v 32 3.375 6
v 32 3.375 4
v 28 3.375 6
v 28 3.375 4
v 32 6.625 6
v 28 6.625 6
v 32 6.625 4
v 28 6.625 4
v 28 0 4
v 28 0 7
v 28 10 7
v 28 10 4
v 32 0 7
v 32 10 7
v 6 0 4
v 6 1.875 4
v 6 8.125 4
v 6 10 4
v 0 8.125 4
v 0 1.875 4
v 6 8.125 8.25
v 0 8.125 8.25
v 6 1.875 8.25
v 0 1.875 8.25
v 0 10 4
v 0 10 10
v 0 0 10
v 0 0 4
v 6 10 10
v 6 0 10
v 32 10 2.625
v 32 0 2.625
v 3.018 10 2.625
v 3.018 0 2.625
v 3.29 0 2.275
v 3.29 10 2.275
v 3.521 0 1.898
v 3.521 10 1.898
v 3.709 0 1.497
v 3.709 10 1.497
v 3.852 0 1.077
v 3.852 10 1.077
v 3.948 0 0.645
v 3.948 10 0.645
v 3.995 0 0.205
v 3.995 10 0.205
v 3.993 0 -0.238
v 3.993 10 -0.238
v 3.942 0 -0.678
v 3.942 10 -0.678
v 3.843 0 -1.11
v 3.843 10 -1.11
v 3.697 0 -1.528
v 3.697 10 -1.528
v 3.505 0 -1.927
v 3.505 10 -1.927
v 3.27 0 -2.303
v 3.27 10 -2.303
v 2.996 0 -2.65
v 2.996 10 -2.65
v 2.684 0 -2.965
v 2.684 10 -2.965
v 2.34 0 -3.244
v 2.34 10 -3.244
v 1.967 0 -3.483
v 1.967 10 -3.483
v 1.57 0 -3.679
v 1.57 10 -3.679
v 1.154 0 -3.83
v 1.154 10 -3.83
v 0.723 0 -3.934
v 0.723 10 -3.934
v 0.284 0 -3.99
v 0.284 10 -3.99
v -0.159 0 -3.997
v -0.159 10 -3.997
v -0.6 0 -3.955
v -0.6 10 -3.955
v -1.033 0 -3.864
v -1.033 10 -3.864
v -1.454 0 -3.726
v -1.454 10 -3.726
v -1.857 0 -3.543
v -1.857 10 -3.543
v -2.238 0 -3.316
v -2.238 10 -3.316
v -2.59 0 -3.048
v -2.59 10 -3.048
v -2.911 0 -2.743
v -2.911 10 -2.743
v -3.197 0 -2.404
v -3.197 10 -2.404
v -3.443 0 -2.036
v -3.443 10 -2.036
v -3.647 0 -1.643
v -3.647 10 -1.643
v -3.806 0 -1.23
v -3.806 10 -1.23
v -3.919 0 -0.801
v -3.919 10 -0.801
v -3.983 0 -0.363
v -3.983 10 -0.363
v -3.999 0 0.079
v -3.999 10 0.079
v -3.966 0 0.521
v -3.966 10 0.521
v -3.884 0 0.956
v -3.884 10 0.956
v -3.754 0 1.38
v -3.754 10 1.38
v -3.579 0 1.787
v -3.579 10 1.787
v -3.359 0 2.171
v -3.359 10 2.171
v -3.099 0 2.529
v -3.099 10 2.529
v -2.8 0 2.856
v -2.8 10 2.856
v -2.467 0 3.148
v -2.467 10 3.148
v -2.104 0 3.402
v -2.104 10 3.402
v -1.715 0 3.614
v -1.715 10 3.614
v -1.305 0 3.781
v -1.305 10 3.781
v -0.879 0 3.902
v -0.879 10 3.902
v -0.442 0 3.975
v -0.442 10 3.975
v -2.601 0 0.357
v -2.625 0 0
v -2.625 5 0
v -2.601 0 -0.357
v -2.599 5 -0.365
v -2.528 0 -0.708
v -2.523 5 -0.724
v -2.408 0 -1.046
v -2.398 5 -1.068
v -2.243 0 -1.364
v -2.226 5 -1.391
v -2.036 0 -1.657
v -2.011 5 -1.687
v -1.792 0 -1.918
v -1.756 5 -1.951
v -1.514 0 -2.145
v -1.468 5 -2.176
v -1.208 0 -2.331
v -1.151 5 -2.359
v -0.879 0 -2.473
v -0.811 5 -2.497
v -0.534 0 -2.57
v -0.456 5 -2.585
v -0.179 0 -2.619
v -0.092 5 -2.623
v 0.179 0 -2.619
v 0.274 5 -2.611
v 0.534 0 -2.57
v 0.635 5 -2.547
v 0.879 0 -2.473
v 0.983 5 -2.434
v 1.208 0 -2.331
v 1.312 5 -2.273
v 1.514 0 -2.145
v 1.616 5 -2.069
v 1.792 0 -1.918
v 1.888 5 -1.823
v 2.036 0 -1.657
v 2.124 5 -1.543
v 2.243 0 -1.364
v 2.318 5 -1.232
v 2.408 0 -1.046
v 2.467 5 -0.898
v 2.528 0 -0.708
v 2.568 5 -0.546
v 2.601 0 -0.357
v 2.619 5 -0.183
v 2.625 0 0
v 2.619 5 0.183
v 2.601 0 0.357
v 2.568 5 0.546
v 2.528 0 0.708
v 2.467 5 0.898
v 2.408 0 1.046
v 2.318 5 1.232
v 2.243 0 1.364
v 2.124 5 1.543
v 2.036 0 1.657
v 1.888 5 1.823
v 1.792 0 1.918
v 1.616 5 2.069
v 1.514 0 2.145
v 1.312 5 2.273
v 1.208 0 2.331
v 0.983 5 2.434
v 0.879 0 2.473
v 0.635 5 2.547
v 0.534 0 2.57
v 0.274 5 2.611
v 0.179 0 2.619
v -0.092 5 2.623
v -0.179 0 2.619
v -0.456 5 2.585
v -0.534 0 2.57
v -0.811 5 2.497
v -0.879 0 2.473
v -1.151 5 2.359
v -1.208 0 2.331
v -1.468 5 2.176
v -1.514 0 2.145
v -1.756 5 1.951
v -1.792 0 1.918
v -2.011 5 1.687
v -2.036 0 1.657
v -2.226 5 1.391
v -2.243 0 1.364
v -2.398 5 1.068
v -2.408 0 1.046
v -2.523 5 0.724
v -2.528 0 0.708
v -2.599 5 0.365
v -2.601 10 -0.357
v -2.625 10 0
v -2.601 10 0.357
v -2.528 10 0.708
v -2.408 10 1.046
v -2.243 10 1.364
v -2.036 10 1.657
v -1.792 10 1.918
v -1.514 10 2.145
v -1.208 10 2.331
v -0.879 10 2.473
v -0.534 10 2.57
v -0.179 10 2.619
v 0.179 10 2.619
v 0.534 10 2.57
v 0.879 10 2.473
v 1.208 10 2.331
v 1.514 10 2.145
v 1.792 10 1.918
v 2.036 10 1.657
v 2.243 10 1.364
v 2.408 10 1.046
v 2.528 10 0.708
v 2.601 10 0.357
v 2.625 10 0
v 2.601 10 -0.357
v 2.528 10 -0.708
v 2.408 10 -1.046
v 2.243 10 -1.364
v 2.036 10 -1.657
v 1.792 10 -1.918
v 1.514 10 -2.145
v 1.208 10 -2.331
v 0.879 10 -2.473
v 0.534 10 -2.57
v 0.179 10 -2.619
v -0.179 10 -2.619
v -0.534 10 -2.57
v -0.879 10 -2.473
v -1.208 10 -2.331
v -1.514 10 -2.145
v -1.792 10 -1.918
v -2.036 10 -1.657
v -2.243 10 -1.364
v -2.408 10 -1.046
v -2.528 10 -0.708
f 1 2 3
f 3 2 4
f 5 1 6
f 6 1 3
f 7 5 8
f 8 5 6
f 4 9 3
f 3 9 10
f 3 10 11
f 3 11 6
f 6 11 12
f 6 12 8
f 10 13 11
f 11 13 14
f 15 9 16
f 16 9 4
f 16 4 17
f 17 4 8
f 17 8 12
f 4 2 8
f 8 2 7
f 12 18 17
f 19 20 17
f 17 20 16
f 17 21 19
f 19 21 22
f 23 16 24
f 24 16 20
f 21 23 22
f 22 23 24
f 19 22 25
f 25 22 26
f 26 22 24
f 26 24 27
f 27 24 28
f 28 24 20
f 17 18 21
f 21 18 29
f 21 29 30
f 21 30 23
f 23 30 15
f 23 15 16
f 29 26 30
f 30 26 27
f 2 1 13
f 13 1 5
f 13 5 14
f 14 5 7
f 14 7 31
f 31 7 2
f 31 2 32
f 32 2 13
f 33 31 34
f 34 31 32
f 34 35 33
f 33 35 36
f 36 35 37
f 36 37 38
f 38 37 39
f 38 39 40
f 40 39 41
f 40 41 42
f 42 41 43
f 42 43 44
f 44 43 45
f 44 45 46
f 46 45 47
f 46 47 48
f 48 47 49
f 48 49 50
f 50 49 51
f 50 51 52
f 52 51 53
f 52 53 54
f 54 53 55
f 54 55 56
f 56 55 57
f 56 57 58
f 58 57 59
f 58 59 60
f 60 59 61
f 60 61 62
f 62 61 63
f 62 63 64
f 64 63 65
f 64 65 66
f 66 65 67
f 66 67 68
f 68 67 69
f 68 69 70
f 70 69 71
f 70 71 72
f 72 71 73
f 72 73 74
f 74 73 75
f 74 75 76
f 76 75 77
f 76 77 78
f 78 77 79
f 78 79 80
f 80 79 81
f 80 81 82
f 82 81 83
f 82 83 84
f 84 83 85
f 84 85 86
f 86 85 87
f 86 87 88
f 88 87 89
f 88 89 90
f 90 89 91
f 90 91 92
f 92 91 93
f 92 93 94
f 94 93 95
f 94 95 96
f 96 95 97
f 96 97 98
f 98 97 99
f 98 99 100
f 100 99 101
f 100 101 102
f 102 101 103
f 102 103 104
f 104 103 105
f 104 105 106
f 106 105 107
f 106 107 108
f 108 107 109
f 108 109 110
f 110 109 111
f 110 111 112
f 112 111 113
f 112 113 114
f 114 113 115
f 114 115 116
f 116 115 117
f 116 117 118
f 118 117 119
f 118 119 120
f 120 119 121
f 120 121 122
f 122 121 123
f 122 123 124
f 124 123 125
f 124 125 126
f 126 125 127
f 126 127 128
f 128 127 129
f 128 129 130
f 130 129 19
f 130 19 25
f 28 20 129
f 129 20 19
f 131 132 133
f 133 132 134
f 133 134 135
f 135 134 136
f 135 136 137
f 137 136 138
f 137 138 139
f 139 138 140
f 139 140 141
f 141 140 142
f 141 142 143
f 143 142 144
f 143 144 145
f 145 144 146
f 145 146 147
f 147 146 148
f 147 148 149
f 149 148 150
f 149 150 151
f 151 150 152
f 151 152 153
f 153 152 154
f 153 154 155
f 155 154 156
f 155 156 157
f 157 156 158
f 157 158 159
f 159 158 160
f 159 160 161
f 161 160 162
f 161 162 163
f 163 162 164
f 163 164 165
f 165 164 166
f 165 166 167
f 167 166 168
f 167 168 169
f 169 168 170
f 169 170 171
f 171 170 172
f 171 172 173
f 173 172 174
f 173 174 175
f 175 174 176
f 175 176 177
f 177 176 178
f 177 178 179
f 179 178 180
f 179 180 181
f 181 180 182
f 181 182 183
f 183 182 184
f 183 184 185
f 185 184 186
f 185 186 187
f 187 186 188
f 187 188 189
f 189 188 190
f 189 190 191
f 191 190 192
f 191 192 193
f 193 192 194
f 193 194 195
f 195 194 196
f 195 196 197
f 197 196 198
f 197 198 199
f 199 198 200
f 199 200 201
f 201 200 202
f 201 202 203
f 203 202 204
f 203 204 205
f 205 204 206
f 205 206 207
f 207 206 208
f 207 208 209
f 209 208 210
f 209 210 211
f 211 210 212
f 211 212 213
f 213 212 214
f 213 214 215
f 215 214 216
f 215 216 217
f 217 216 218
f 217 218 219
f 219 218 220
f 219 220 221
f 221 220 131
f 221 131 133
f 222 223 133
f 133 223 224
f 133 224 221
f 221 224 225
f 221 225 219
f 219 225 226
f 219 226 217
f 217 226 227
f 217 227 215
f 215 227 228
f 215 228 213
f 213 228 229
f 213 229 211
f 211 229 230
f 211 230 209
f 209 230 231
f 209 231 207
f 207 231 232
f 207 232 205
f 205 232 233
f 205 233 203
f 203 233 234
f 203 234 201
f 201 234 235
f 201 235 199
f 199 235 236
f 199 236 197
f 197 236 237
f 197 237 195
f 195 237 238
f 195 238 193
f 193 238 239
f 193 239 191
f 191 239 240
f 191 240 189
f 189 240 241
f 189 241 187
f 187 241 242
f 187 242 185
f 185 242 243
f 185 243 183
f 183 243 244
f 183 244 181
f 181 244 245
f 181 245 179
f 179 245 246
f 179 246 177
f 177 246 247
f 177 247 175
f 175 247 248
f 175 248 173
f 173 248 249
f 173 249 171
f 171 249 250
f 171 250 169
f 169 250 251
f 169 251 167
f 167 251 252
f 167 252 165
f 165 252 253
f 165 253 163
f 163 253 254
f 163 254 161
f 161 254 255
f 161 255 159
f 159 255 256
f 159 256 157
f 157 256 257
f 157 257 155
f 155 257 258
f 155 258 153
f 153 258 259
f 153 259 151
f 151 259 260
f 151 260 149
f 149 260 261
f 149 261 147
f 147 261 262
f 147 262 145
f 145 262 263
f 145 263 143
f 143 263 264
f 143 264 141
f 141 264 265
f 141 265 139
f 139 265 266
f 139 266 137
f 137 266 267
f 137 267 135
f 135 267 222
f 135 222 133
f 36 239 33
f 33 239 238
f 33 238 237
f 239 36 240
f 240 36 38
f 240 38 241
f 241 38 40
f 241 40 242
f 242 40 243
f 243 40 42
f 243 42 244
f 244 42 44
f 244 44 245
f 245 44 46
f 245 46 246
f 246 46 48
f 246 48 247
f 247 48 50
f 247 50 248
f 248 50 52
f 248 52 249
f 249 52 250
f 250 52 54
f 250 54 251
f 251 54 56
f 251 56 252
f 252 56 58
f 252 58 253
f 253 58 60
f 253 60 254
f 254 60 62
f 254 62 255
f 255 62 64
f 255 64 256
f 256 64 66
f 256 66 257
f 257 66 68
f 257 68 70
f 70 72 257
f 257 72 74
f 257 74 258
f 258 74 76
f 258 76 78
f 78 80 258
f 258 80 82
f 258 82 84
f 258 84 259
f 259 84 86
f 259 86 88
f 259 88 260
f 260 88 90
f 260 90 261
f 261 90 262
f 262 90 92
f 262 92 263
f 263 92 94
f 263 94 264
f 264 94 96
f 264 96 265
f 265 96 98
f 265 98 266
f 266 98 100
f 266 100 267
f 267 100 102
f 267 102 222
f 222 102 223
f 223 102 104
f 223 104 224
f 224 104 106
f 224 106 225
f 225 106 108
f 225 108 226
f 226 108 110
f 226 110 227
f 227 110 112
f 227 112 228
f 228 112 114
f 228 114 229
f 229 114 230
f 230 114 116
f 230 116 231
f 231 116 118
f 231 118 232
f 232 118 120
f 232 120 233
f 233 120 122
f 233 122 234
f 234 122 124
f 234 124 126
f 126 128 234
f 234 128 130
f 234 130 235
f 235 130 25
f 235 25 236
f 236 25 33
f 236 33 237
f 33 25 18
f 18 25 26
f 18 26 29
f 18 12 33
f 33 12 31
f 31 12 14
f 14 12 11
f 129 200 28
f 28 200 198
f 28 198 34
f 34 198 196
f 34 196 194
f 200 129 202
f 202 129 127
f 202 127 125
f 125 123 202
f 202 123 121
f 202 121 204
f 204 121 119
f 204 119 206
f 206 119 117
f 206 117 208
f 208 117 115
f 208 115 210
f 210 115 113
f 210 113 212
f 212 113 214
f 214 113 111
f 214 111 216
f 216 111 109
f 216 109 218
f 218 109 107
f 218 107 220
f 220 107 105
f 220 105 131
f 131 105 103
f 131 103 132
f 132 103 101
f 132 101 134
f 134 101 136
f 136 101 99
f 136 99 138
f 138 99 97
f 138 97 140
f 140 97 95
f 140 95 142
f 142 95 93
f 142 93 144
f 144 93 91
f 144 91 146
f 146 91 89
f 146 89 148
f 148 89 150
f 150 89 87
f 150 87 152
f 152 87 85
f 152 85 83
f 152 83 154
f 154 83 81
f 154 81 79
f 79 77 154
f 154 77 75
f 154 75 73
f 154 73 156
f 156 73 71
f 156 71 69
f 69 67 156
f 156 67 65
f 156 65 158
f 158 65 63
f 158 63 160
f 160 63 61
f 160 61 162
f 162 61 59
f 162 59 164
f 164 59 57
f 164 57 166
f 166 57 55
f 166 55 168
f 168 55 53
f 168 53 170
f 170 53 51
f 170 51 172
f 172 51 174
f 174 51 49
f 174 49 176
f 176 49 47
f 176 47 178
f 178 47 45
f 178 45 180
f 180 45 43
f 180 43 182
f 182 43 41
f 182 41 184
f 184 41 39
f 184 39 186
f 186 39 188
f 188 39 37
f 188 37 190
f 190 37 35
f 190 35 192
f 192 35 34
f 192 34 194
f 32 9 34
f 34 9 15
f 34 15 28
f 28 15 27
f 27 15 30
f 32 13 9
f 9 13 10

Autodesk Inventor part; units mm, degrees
ref_plane "YZ Plane" through (0, 0, 0) normal (1, 0, 0) x (0, 1, 0)
ref_plane "XZ Plane" through (0, 0, 0) normal (0, 1, 0) x (-1, 0, 0)
sketch "Sketch1" plane through (0, 0, 0) normal (0, 1, 0) x (-1, 0, 0)
  circle A0 centre (0, 0) radius 2.625
  circle A1 centre (0, 0) radius 4
  dimension "d0" = 5.25
  dimension "d1" = 8
extrude "Extrusion1" add sketch "Sketch1" along normal blind 10
ref_plane "Work Plane1" through (0, 0, 4) normal (0, 0, 1) x (1, 0, 0)
sketch "Sketch2" plane through (0, 0, 4) normal (0, 0, 1) x (1, 0, 0)
  line L0 (4, 10) -> (-4, 10) construction
  line L1 (0, 10) -> (0, 0) construction
  line L2 (0, 10) -> (32, 10)
  line L3 (0, 0) -> (32, 0)
  line L4 (4, 0) -> (-4, 0) projected
  line L5 (0, 10) -> (0, 0)
  line L6 (32, 0) -> (32, 10)
  dimension "d5" = 32
  dimension "d6" = 32
extrude "Extrusion2" add sketch "Sketch2" against normal blind 1.375
sketch "Sketch3" plane through (0, 0, 4) normal (0, 0, 1) x (1, 0, 0)
  line L0 (-2.625, 10) -> (2.625, 10) projected
  line L1 (0, 10) -> (0, 0)
  line L2 (0, 0) -> (6, 0)
  line L3 (32, 0) -> (3.0182, 0) projected
  line L4 (6, 0) -> (6, 10)
  line L5 (6, 10) -> (0, 10)
  dimension "d9" = 6
extrude "Extrusion3" add sketch "Sketch3" along normal blind 6
sketch "Sketch4" plane through (0, 0, 4) normal (-1, 0, 0) x (0, 0, 1)
  line L0 (6, 0) -> (6, 10) construction
  line L1 (6, 5) -> (0, 5) construction
  line L2 (0, 0) -> (0, 10) construction
  line L3 (0, 5) -> (0, 8.125)
  line L4 (0, 5) -> (0, 1.875)
  line L5 (0, 1.875) -> (4.25, 1.875)
  line L6 (4.25, 1.875) -> (4.25, 8.125)
  line L7 (4.25, 8.125) -> (0, 8.125)
  point P0 (-4, 0)
  dimension "d12" = 3.125
  dimension "d13" = 3.125
  dimension "d14" = 4.25
extrude "Extrusion4" cut sketch "Sketch4" against normal up to next
sketch "Sketch5" plane through (0, 0, 4) normal (0, 0, 1) x (1, 0, 0)
  line L0 (32, 10) -> (28, 10)
  line L1 (32, 10) -> (6, 10) projected
  line L2 (28, 10) -> (28, 0)
  line L3 (6, 0) -> (32, 0) projected
  line L4 (32, 0) -> (28, 0)
  line L5 (32, 0) -> (32, 10)
  point P0 (0, 0)
  dimension "d17" = 4
extrude "Extrusion5" add sketch "Sketch5" along normal blind 3
sketch "Sketch6" plane through (28, 0, 4) normal (-1, 0, 0) x (0, 0, 1)
  line L0 (-1.375, 10) -> (3, 10) construction
  line L1 (3, 10) -> (3, 0) construction
  line L2 (0, 0) -> (6, 0) construction
  line L3 (3, 0) -> (3, 10) construction
  line L4 (3, 5) -> (0, 5) construction
  line L5 (0, 1.875) -> (0, 8.125) construction
  line L6 (0, 5) -> (0, 6.625)
  line L7 (0, 5) -> (0, 3.375)
  line L8 (0, 3.375) -> (2, 3.375)
  line L9 (2, 3.375) -> (2, 6.625)
  line L10 (2, 6.625) -> (0, 6.625)
  point P0 (-4, 0)
  dimension "d20" = 1.625
  dimension "d21" = 1.625
  dimension "d22" = 2
extrude "Extrusion6" cut sketch "Sketch6" against normal up to next
properties part number "tiny LED's standoff mount"
